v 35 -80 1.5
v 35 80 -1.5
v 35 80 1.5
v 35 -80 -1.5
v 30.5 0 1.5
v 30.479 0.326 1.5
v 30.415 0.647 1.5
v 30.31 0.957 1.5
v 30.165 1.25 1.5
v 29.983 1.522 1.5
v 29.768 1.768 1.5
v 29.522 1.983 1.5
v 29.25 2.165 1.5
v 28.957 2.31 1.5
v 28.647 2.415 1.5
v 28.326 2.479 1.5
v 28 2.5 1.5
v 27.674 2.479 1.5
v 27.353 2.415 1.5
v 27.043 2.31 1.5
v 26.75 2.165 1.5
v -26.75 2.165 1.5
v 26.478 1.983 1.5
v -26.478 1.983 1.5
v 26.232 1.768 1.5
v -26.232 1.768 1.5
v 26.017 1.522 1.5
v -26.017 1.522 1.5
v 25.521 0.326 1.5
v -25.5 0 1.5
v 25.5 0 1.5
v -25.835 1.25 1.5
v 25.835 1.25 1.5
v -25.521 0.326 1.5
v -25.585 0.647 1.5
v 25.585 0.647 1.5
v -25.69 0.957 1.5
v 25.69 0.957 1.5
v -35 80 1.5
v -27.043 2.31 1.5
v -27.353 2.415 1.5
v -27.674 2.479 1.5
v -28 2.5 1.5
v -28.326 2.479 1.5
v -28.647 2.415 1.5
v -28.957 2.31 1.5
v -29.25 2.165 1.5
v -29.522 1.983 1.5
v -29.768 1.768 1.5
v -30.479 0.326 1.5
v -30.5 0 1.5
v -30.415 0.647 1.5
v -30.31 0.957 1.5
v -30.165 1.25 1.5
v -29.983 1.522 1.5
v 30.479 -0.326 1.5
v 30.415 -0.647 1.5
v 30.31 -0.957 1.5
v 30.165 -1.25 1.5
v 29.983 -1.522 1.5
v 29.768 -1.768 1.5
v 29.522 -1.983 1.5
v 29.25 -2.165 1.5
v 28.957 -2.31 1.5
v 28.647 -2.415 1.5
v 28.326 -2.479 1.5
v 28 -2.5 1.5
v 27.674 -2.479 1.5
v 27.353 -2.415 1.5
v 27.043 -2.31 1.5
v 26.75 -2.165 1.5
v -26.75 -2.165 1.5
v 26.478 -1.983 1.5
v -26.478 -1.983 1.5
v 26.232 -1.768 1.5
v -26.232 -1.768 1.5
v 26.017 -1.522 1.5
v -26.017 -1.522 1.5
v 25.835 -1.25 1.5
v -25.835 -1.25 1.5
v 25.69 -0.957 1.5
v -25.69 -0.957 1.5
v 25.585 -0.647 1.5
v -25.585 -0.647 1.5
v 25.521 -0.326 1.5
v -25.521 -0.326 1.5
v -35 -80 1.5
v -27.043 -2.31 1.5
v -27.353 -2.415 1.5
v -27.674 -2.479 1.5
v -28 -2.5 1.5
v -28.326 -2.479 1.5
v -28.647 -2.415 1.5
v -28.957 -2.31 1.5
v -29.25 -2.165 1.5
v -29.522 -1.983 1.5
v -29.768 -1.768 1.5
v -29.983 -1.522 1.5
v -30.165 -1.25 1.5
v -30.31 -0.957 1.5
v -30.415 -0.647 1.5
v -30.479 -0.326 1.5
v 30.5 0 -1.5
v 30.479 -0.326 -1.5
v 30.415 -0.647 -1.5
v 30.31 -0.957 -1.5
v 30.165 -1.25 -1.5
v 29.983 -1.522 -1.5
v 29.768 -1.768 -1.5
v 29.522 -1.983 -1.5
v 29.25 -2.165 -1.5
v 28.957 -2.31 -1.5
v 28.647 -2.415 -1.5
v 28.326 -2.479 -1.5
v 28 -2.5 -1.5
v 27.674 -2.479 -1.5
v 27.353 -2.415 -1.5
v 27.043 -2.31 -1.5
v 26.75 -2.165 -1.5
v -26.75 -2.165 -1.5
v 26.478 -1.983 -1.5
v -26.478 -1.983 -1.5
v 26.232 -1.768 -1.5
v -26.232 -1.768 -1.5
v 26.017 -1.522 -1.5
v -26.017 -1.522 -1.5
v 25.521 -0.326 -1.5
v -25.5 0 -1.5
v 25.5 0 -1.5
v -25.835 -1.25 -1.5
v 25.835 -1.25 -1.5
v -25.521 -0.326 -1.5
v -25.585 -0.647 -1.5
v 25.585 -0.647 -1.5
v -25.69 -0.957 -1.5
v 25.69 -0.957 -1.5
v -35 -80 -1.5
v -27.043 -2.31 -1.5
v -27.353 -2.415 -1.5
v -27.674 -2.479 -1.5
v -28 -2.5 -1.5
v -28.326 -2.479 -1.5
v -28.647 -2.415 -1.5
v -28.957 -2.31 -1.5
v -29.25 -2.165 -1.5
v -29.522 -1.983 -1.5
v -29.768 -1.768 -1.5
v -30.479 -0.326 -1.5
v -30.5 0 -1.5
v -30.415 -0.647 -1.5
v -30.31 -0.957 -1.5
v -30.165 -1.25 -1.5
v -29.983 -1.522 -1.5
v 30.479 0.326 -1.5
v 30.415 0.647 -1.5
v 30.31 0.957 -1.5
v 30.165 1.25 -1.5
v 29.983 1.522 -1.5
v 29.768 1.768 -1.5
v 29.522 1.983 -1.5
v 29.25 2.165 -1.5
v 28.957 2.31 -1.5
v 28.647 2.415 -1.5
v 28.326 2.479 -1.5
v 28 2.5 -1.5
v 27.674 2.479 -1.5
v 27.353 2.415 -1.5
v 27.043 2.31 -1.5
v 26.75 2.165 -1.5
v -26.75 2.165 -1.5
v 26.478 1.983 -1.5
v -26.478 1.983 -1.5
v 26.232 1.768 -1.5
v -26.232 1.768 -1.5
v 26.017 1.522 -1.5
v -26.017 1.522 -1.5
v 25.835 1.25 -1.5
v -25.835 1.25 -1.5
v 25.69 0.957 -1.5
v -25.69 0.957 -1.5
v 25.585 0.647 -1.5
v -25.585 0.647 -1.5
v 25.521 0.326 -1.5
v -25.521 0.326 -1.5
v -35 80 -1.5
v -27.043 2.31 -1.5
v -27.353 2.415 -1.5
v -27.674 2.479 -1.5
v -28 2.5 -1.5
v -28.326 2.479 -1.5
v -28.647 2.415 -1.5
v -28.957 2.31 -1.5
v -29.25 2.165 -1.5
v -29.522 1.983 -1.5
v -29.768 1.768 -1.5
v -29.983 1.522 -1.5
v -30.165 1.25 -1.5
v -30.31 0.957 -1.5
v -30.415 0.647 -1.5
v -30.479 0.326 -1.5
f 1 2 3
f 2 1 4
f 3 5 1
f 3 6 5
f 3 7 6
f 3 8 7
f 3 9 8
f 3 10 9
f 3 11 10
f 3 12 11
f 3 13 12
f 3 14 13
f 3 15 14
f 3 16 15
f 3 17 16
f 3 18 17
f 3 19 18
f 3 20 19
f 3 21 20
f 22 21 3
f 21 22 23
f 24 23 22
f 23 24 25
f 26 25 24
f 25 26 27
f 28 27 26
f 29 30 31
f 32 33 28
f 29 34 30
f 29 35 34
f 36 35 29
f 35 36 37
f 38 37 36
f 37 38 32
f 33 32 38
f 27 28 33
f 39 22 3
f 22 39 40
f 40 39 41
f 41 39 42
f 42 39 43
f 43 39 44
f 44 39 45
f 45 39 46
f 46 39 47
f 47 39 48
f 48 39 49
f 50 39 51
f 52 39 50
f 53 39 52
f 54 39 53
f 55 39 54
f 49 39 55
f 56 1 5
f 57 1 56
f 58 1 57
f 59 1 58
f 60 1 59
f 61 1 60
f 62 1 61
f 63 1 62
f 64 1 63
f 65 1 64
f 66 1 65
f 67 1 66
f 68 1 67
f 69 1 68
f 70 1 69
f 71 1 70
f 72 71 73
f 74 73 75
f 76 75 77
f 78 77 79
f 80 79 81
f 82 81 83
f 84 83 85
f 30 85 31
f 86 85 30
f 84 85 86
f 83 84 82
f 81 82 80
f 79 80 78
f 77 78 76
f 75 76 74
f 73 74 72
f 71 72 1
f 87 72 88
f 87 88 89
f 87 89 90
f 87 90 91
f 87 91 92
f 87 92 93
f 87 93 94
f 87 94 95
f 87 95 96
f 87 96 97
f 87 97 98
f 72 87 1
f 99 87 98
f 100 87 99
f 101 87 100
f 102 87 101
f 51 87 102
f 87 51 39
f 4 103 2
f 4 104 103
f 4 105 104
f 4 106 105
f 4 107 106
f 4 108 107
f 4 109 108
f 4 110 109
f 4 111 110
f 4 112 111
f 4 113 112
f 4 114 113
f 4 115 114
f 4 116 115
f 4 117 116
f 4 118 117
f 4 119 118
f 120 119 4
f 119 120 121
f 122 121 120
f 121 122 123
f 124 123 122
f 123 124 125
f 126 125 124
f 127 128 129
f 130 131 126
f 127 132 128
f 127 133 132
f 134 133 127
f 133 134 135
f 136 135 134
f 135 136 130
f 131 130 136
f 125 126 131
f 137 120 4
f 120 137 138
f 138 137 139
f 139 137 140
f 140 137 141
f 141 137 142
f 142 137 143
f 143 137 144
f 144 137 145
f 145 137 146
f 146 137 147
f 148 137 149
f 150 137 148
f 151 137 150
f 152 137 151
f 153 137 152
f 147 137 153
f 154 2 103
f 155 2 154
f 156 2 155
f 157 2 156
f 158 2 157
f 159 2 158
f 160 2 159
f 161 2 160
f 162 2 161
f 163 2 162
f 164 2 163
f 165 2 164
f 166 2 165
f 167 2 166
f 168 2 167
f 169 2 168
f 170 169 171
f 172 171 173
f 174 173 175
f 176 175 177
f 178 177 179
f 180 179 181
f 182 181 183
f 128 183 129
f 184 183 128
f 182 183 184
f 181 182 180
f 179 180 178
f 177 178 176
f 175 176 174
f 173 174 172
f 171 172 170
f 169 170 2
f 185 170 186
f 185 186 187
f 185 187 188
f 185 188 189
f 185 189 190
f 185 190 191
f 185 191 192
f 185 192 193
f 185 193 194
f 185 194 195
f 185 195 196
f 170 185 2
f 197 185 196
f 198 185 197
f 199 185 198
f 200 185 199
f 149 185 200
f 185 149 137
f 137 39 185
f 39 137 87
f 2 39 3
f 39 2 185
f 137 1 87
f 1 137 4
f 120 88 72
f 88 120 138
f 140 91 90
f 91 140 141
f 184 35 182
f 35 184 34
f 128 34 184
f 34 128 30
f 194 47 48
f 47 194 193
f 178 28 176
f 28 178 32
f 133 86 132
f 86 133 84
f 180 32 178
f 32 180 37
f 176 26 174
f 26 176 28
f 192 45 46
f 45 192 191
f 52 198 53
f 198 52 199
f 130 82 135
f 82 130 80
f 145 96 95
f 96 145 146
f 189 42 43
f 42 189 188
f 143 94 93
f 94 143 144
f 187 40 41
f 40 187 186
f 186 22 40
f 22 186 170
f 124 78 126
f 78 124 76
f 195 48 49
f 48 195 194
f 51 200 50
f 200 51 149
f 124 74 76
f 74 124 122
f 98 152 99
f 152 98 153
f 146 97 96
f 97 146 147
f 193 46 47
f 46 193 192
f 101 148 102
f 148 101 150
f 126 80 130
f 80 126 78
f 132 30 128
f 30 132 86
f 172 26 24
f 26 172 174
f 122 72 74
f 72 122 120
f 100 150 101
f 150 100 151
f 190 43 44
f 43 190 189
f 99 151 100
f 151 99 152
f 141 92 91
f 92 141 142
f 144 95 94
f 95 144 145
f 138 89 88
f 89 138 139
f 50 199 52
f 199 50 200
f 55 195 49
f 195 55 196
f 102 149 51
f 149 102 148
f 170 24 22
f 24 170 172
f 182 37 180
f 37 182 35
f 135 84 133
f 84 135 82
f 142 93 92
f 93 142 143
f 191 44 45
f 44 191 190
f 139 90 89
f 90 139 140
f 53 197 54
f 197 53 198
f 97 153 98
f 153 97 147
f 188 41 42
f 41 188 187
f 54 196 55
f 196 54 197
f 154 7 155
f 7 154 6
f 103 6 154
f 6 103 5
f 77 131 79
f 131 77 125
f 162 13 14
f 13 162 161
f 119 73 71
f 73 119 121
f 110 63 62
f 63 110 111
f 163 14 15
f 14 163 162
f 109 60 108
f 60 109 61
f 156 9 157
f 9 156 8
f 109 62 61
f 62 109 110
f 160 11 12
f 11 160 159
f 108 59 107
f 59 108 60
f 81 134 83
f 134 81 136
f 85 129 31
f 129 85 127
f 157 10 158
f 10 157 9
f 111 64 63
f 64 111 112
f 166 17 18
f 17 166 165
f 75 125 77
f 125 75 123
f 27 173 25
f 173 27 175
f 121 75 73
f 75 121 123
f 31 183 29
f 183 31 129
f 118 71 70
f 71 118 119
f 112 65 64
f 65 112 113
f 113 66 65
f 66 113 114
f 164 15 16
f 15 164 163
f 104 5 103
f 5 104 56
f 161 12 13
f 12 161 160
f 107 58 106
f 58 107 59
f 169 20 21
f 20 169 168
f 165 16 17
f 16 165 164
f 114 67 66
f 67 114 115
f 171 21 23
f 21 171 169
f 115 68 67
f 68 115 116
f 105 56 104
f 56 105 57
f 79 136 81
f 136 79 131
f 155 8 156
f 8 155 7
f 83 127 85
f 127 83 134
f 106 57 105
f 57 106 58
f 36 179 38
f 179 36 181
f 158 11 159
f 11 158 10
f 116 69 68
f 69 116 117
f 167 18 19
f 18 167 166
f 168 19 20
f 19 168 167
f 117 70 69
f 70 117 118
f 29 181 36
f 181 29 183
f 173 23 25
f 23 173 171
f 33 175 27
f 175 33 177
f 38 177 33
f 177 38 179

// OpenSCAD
// ========================================
// a 70 x 160 x 3 mm plate with two 5 mm holes
// NeuroCAD canonical IR; dimensions are millimetres
// ========================================
$fn = 48;

difference() {
  cube(size=[70, 160, 3], center=true);
  translate([-28, 0, 0]) {
    cylinder(r=2.5, h=5, center=true);
  }
  translate([28, 0, 0]) {
    cylinder(r=2.5, h=5, center=true);
  }
}
